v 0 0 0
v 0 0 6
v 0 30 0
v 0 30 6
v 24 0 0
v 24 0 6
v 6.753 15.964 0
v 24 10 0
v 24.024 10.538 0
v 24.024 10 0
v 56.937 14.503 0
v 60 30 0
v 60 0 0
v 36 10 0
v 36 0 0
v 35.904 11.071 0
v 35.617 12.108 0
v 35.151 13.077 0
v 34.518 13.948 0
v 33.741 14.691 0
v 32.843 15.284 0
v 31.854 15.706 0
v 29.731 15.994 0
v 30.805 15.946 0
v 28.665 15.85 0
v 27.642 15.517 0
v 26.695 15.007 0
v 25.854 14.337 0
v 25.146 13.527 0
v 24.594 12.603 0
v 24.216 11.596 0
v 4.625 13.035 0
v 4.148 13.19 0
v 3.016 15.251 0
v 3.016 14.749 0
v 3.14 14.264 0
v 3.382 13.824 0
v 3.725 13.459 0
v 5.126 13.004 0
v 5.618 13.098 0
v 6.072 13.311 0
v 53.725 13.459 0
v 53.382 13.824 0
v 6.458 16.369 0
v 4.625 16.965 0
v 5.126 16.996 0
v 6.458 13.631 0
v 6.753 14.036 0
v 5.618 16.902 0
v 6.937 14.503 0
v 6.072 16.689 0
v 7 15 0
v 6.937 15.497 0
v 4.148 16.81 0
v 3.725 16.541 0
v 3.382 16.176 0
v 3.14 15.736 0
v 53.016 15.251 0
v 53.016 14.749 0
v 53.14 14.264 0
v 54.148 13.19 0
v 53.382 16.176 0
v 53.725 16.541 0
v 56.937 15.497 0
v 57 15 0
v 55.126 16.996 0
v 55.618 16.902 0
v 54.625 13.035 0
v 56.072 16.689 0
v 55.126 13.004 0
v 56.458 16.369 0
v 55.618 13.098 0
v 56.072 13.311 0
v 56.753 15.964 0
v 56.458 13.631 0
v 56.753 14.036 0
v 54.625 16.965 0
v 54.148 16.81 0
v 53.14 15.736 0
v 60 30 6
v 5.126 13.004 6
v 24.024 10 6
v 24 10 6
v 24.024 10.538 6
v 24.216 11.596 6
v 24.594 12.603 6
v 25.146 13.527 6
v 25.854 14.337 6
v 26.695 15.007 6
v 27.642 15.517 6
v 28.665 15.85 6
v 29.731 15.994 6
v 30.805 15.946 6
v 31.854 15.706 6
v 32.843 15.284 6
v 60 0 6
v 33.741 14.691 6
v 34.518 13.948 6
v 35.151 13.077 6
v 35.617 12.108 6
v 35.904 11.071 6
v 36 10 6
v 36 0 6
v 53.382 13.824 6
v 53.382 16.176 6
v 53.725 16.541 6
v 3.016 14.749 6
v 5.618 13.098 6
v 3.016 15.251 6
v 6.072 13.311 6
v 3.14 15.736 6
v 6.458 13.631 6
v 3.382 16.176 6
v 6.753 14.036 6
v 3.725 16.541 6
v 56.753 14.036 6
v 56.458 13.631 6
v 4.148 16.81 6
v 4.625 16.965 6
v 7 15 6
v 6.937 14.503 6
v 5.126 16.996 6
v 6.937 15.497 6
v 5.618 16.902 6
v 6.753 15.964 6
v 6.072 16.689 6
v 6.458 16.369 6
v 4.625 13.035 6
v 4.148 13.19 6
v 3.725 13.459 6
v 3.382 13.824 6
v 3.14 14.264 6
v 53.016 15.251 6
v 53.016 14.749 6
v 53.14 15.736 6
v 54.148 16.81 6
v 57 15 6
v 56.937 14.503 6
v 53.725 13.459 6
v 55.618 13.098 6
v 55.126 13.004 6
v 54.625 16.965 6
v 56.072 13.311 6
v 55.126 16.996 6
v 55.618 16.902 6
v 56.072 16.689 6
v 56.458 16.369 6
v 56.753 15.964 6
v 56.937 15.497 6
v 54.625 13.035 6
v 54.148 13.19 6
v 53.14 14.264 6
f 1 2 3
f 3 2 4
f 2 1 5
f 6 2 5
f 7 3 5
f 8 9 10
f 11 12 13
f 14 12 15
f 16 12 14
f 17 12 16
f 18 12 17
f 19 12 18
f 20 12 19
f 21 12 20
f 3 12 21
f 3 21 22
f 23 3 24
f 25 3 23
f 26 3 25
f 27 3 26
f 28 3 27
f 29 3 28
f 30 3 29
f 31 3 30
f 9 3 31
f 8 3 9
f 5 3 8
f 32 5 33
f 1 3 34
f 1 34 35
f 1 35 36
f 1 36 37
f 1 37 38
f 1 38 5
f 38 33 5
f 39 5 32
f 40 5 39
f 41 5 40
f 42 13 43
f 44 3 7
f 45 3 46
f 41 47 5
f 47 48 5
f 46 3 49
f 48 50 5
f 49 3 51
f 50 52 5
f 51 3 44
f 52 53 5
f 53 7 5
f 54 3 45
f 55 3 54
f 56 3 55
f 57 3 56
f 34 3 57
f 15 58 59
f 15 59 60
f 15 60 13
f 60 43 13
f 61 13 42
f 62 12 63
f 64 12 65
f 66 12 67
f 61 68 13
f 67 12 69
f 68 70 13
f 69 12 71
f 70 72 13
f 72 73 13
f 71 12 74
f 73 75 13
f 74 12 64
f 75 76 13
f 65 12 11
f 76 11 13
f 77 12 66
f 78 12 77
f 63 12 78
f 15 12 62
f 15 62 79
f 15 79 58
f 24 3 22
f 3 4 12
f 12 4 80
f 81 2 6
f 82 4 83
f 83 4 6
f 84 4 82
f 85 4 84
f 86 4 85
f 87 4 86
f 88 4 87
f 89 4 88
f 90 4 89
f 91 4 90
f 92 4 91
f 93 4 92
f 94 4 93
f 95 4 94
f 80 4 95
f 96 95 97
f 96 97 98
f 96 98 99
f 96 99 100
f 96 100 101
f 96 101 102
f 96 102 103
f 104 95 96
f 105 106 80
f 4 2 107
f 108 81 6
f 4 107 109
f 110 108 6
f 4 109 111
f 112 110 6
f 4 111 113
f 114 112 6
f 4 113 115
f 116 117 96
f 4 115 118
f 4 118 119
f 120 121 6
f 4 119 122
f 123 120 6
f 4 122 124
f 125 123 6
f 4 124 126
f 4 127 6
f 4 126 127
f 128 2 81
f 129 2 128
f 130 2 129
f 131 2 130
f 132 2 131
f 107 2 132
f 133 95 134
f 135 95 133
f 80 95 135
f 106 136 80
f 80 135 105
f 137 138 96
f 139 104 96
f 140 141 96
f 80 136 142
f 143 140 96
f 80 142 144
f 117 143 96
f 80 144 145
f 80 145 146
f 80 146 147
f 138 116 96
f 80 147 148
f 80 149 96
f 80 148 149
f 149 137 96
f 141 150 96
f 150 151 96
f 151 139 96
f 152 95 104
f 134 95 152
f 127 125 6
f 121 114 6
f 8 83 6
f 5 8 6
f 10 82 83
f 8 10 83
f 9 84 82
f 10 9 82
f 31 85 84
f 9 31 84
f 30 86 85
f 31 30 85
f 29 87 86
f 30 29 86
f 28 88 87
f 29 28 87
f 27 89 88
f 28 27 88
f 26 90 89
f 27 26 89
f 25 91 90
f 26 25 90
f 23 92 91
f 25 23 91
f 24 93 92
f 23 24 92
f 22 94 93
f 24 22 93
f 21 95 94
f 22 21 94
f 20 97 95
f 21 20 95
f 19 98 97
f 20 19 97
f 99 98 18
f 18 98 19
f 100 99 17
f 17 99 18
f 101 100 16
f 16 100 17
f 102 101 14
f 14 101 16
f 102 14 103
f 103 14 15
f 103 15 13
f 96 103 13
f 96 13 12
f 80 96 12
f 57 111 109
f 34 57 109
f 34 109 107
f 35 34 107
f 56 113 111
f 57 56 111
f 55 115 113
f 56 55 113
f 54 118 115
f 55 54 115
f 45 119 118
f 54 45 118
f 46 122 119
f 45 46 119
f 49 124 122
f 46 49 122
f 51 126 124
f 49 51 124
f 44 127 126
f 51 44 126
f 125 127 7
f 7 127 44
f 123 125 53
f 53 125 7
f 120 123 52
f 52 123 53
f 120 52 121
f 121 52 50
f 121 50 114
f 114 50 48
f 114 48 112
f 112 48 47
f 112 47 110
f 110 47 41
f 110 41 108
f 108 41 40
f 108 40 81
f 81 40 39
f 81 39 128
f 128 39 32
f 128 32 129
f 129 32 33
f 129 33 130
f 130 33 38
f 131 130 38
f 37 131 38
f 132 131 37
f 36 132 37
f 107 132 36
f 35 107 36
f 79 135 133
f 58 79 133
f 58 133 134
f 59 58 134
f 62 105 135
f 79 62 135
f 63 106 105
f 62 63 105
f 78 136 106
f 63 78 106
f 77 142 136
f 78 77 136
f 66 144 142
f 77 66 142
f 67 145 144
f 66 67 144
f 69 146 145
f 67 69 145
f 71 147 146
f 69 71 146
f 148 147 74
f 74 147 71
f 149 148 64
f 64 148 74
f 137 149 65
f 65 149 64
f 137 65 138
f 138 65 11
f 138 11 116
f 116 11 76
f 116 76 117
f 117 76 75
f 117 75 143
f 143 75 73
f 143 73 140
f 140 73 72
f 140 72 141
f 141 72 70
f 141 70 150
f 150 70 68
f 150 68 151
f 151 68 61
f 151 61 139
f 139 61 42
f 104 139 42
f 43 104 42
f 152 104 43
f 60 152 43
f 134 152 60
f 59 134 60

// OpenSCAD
difference(){
	cube([60,30,6]);


	translate([3+2/1,13+2/1,-1]){
		cylinder(r=2,h=8,$fn=25);
	}

	translate([60-(3+2/1),13+2/1,-1]){
		cylinder(r=2,h=8,$fn=25);
	}

	translate([30,10,-1]){
		cylinder(r=6,h=8,$fn=35);
	}

	translate([60/2-(12/2),-1,-1]){
		cube([12,11,8]);
	}
}
